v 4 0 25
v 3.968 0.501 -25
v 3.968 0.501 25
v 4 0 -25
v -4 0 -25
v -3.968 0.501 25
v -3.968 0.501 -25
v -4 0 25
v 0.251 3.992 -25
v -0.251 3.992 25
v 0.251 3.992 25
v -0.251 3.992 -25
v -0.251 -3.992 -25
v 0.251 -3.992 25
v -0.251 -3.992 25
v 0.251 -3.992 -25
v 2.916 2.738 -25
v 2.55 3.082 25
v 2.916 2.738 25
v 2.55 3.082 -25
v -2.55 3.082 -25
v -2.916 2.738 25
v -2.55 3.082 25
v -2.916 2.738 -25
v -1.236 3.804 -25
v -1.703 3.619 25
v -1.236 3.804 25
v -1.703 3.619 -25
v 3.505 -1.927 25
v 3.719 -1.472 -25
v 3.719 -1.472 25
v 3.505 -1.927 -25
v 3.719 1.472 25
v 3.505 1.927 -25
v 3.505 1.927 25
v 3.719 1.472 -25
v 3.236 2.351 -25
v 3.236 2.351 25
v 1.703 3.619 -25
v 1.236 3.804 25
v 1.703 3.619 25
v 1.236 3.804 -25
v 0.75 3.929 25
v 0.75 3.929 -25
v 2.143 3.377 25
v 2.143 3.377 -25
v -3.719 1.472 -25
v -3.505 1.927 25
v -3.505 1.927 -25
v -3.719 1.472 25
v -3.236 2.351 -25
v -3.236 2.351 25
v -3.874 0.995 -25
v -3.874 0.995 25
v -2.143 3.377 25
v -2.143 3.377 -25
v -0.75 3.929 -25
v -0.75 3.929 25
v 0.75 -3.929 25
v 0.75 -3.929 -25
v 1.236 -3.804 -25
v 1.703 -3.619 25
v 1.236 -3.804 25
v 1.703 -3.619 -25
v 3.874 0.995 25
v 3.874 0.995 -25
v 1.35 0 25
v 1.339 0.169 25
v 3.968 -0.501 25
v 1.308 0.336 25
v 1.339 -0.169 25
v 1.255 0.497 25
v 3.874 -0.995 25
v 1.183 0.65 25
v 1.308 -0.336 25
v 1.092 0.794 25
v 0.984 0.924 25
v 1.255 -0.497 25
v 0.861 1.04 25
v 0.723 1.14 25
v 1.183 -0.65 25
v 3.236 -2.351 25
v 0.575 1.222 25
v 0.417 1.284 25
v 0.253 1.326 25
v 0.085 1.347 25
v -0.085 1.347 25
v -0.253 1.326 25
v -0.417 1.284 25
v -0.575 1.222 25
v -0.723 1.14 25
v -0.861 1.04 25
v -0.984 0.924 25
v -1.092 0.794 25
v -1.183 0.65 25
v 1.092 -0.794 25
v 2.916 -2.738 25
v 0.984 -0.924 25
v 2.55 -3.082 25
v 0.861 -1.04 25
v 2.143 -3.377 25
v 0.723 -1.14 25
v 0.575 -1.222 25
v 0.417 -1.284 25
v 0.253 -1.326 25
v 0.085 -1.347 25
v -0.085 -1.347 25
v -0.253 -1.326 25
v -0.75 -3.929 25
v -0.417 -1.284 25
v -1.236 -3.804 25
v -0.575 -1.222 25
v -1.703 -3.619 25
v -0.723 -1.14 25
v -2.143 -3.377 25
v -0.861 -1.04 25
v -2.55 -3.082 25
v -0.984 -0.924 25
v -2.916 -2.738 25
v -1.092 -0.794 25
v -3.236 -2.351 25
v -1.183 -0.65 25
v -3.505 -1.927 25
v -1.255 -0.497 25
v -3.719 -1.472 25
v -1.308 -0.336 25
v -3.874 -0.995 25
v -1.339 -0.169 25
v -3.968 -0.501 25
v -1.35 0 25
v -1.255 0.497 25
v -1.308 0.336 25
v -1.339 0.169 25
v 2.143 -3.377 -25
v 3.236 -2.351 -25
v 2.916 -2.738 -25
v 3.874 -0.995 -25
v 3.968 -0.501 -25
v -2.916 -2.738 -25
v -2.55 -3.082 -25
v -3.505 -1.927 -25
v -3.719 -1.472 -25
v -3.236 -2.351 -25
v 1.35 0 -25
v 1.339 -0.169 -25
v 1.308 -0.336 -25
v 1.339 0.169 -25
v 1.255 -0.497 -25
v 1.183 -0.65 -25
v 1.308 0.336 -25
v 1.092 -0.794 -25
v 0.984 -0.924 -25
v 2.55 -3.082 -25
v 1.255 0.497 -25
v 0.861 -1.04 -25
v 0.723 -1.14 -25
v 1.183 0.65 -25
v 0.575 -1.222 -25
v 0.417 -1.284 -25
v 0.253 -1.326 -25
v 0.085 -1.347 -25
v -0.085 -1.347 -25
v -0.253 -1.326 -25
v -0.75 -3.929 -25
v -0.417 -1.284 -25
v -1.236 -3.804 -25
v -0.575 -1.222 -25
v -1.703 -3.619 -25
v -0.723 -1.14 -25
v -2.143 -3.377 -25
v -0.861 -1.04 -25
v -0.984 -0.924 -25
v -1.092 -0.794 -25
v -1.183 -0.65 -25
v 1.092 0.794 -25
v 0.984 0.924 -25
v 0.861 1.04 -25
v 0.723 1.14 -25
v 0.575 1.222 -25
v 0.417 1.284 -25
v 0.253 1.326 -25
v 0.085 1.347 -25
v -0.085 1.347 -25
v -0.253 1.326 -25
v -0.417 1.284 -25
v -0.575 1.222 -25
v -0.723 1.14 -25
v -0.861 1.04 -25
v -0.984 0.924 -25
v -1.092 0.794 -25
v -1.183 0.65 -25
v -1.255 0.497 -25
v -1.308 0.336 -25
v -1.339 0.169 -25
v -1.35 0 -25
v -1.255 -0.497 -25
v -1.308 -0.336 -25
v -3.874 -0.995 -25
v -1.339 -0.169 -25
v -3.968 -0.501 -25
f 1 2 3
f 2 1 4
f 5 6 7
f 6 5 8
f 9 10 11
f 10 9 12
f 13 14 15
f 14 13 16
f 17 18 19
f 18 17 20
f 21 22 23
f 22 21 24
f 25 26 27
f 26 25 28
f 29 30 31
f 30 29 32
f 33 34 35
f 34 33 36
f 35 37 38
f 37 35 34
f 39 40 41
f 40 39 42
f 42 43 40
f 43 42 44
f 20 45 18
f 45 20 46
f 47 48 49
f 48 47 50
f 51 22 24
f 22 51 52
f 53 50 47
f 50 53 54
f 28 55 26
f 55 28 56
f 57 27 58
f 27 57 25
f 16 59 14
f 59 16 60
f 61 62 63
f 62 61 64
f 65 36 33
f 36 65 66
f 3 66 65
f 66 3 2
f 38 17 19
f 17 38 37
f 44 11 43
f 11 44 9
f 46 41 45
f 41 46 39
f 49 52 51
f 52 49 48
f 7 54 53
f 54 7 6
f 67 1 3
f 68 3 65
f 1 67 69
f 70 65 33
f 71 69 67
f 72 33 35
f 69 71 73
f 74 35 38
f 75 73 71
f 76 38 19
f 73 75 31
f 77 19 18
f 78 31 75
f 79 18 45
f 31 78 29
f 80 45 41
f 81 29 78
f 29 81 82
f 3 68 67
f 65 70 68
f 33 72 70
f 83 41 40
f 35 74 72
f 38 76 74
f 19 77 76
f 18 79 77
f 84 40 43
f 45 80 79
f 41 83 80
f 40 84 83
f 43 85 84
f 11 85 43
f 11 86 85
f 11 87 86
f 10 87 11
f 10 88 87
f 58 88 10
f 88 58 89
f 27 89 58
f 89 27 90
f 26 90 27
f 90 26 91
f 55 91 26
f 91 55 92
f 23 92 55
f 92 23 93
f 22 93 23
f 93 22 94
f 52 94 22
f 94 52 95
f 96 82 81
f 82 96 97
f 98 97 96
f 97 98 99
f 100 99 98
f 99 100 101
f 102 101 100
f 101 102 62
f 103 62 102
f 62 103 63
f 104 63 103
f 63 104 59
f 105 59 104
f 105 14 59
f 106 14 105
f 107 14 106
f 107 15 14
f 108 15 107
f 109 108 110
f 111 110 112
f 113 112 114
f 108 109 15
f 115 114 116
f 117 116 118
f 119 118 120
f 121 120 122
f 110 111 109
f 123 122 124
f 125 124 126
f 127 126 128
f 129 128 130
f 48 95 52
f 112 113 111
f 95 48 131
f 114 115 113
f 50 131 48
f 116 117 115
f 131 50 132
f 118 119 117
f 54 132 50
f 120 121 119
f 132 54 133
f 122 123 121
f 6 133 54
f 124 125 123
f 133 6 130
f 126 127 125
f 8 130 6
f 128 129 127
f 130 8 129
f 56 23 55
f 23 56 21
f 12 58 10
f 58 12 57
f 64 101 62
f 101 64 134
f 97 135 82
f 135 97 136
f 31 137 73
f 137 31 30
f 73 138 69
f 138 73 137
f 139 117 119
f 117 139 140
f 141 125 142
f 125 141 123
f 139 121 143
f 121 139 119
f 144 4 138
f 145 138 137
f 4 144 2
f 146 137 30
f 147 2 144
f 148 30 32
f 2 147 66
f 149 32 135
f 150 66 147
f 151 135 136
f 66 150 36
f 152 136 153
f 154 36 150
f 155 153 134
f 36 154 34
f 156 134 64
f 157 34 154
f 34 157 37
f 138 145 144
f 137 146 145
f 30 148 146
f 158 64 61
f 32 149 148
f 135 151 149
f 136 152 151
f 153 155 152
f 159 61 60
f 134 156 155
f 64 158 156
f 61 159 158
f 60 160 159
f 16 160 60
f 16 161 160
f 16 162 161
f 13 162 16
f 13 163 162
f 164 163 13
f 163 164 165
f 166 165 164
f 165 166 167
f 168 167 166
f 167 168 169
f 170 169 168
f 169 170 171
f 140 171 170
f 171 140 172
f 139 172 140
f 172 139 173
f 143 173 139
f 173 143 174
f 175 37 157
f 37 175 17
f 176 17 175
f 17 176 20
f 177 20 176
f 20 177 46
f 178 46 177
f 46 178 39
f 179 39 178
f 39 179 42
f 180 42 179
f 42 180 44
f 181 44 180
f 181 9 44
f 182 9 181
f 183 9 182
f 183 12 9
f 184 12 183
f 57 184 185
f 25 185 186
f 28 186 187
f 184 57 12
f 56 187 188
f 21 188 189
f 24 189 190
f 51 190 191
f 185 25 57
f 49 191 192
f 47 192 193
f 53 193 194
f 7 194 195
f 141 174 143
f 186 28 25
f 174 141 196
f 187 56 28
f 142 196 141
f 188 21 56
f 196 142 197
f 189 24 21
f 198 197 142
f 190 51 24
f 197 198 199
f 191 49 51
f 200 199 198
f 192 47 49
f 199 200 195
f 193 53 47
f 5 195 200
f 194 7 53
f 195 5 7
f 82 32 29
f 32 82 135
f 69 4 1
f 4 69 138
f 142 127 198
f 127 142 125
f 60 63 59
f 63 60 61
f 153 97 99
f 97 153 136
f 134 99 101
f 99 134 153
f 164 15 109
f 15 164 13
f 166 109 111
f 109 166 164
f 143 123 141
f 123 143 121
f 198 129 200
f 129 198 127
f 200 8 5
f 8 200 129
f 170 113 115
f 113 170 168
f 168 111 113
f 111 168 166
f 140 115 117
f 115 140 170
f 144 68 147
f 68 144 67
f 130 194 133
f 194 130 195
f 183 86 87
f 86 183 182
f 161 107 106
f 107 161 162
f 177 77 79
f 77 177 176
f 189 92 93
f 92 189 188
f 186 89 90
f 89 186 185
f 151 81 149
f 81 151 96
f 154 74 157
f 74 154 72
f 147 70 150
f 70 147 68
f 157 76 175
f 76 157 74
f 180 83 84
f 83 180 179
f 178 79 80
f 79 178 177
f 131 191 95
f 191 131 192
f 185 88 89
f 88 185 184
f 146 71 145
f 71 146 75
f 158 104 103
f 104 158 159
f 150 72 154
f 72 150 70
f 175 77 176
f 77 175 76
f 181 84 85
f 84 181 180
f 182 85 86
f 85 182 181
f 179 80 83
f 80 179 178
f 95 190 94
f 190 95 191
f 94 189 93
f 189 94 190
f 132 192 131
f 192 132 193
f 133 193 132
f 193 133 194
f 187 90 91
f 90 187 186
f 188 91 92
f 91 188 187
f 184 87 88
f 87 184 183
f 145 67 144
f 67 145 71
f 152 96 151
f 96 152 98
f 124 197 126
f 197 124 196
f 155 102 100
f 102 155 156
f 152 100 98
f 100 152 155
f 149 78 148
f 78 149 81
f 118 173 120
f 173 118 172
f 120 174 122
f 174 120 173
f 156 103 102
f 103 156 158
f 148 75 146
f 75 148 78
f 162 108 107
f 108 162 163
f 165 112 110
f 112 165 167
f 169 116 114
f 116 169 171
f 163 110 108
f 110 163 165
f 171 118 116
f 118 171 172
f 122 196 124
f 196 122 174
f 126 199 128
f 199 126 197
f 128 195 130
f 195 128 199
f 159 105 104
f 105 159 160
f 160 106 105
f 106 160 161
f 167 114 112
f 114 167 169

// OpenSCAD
$fn = 50;


difference() {
	union() {
		translate(v = [0, 0, -25.0000000000]) {
			cylinder(h = 50, r = 4.0000000000);
		}
	}
	union() {
		translate(v = [0, 0, -100.0000000000]) {
			cylinder(h = 200, r = 1.3500000000);
		}
	}
}
